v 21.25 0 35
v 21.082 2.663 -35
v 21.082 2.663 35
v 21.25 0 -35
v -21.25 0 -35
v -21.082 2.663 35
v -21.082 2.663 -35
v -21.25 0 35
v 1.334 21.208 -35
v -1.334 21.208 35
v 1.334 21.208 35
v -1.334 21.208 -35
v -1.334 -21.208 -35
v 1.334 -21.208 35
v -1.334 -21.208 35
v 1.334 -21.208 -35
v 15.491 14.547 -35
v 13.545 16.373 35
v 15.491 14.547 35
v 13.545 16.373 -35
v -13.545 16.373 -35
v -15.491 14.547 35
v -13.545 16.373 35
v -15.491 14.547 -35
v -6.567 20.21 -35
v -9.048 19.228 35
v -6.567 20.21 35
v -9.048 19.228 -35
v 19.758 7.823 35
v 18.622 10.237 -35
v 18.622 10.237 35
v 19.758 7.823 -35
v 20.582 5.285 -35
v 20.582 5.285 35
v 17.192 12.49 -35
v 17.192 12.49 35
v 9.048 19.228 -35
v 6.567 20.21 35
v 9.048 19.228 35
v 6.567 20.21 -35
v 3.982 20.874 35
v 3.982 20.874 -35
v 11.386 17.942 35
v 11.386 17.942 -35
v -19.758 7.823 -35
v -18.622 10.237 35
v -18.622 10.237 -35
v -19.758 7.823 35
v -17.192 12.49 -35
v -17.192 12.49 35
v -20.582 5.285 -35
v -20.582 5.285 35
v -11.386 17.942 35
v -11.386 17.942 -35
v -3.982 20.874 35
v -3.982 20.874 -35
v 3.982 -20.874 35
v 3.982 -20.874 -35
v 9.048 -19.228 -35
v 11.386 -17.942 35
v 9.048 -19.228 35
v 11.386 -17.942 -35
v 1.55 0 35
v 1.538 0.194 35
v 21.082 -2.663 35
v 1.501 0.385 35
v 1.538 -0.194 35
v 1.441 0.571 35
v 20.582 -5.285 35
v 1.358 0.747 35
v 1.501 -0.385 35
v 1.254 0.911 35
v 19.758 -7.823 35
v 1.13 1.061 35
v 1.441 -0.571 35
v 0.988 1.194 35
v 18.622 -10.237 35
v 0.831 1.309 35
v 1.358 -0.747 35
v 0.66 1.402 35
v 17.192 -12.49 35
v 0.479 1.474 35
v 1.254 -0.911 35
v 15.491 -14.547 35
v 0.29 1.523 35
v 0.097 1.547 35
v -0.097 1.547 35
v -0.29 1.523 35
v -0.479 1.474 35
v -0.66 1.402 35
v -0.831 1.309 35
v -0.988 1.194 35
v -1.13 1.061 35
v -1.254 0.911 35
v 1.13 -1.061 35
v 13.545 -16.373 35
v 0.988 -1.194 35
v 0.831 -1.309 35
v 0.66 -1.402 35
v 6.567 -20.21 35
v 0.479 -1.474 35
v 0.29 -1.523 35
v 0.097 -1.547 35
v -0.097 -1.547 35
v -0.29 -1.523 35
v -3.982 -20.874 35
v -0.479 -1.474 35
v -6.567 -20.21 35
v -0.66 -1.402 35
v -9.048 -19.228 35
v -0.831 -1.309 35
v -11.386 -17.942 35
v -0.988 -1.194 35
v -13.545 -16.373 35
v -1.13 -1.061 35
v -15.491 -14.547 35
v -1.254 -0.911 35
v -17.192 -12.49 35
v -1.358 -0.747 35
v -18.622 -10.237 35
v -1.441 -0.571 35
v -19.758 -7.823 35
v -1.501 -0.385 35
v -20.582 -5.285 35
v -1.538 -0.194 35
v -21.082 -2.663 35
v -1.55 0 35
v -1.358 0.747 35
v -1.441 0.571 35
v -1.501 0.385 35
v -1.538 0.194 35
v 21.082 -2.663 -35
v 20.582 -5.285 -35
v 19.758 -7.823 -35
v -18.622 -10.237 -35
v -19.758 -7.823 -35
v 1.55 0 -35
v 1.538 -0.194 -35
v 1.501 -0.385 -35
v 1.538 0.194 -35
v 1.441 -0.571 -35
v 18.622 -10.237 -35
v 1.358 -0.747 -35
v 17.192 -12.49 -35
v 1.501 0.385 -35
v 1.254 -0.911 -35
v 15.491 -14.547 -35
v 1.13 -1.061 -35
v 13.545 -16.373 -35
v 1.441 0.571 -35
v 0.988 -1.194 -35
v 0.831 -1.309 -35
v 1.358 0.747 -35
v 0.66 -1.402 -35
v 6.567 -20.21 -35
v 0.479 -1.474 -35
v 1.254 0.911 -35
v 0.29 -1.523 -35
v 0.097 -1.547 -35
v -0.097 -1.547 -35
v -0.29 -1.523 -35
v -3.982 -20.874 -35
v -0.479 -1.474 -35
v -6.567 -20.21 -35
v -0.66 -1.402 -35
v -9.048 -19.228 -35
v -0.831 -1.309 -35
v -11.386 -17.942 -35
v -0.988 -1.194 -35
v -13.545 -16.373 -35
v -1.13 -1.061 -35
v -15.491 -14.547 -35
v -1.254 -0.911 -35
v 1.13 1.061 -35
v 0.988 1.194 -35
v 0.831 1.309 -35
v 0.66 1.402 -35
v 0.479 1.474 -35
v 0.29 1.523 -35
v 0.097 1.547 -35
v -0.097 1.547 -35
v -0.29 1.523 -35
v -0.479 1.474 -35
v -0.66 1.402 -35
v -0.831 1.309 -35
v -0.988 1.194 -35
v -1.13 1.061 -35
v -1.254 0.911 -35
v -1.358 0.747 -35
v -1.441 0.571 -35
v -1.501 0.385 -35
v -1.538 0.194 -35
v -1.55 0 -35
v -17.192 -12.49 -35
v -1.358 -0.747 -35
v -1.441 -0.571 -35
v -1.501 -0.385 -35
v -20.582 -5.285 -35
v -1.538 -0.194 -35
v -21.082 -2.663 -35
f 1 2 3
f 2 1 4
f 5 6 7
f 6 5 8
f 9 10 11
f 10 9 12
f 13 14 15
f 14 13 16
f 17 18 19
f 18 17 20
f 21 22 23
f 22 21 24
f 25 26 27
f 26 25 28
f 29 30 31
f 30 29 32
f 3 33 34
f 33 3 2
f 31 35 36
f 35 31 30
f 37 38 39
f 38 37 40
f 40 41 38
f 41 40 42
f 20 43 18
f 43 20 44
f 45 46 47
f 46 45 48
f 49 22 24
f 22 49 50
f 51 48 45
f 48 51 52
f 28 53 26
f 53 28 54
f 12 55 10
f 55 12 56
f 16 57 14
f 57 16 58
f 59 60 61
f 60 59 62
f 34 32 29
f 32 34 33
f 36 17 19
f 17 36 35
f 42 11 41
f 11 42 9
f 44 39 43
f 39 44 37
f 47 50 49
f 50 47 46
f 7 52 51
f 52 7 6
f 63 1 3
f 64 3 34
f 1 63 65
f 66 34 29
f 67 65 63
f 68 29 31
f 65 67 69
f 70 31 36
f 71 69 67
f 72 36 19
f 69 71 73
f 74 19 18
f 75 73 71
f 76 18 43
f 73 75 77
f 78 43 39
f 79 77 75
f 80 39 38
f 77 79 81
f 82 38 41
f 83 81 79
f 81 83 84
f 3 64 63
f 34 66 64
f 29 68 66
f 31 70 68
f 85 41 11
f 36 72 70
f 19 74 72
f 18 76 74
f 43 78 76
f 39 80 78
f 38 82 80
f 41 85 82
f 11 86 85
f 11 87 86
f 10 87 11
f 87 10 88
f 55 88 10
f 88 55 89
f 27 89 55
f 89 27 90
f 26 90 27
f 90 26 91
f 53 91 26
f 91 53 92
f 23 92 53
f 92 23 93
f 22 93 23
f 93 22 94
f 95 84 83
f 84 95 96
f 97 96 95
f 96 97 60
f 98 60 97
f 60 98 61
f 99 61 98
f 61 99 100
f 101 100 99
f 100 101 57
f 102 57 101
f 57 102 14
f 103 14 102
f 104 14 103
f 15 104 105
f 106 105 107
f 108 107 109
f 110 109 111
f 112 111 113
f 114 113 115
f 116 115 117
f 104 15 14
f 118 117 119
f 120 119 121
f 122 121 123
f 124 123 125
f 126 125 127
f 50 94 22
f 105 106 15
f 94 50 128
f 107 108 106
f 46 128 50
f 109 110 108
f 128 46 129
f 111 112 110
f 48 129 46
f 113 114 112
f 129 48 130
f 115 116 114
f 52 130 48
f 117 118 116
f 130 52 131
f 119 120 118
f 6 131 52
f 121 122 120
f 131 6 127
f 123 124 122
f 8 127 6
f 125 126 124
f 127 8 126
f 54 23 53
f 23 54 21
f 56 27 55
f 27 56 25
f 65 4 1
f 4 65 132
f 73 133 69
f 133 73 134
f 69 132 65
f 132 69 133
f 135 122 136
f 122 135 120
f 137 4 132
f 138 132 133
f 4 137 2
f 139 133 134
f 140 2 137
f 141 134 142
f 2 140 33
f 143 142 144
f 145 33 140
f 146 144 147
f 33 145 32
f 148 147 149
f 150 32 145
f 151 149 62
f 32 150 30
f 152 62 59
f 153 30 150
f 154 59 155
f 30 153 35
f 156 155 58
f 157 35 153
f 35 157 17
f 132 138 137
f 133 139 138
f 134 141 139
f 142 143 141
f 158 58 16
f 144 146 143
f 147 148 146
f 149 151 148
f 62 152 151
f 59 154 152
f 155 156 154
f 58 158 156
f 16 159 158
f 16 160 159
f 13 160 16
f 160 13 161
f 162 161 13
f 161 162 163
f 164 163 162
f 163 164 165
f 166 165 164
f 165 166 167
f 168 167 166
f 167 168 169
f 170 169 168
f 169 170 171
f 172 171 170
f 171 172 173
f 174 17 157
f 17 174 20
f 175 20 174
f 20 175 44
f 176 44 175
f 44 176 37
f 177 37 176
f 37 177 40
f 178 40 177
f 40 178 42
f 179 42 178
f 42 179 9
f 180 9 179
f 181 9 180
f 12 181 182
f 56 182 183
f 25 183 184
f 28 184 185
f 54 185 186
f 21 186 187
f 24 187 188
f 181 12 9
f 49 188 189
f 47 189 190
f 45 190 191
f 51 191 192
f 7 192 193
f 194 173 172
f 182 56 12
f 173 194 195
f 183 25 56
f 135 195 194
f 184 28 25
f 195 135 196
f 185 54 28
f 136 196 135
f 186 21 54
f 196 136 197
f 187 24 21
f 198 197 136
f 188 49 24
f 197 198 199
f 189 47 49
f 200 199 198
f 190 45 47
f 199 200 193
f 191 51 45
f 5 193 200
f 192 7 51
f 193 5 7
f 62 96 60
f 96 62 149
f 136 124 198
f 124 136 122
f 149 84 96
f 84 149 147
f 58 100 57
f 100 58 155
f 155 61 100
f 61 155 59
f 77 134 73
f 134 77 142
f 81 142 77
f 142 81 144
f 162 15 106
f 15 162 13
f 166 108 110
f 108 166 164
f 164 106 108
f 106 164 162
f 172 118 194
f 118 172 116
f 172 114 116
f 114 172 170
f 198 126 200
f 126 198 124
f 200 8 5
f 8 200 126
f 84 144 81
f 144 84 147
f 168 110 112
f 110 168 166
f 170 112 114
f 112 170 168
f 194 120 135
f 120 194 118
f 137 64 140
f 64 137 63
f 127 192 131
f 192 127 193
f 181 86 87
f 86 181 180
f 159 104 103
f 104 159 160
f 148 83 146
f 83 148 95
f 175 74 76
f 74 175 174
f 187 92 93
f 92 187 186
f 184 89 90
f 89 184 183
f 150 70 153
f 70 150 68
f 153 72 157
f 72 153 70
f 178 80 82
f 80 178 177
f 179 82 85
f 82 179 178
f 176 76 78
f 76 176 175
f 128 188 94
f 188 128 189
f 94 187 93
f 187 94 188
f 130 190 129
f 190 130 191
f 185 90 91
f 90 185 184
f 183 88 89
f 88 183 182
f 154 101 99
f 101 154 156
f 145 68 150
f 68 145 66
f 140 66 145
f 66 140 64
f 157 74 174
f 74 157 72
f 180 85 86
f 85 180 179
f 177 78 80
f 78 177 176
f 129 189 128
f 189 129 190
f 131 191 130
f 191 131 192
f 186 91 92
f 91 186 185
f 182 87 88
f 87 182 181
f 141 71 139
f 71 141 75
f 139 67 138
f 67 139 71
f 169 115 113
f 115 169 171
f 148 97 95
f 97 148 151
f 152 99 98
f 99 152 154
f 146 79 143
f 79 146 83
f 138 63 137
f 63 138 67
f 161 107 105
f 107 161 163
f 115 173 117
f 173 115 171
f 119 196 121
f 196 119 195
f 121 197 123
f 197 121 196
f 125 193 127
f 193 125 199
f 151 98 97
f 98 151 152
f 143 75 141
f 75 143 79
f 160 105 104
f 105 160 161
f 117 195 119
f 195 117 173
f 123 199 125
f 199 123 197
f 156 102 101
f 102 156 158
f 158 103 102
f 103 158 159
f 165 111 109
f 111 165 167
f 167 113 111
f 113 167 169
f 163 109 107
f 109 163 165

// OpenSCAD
$fn = 50;


difference() {
	union() {
		translate(v = [0, 0, -35.0000000000]) {
			cylinder(h = 70, r = 21.2500000000);
		}
	}
	union() {
		translate(v = [0, 0, -100.0000000000]) {
			cylinder(h = 200, r = 1.5500000000);
		}
	}
}
